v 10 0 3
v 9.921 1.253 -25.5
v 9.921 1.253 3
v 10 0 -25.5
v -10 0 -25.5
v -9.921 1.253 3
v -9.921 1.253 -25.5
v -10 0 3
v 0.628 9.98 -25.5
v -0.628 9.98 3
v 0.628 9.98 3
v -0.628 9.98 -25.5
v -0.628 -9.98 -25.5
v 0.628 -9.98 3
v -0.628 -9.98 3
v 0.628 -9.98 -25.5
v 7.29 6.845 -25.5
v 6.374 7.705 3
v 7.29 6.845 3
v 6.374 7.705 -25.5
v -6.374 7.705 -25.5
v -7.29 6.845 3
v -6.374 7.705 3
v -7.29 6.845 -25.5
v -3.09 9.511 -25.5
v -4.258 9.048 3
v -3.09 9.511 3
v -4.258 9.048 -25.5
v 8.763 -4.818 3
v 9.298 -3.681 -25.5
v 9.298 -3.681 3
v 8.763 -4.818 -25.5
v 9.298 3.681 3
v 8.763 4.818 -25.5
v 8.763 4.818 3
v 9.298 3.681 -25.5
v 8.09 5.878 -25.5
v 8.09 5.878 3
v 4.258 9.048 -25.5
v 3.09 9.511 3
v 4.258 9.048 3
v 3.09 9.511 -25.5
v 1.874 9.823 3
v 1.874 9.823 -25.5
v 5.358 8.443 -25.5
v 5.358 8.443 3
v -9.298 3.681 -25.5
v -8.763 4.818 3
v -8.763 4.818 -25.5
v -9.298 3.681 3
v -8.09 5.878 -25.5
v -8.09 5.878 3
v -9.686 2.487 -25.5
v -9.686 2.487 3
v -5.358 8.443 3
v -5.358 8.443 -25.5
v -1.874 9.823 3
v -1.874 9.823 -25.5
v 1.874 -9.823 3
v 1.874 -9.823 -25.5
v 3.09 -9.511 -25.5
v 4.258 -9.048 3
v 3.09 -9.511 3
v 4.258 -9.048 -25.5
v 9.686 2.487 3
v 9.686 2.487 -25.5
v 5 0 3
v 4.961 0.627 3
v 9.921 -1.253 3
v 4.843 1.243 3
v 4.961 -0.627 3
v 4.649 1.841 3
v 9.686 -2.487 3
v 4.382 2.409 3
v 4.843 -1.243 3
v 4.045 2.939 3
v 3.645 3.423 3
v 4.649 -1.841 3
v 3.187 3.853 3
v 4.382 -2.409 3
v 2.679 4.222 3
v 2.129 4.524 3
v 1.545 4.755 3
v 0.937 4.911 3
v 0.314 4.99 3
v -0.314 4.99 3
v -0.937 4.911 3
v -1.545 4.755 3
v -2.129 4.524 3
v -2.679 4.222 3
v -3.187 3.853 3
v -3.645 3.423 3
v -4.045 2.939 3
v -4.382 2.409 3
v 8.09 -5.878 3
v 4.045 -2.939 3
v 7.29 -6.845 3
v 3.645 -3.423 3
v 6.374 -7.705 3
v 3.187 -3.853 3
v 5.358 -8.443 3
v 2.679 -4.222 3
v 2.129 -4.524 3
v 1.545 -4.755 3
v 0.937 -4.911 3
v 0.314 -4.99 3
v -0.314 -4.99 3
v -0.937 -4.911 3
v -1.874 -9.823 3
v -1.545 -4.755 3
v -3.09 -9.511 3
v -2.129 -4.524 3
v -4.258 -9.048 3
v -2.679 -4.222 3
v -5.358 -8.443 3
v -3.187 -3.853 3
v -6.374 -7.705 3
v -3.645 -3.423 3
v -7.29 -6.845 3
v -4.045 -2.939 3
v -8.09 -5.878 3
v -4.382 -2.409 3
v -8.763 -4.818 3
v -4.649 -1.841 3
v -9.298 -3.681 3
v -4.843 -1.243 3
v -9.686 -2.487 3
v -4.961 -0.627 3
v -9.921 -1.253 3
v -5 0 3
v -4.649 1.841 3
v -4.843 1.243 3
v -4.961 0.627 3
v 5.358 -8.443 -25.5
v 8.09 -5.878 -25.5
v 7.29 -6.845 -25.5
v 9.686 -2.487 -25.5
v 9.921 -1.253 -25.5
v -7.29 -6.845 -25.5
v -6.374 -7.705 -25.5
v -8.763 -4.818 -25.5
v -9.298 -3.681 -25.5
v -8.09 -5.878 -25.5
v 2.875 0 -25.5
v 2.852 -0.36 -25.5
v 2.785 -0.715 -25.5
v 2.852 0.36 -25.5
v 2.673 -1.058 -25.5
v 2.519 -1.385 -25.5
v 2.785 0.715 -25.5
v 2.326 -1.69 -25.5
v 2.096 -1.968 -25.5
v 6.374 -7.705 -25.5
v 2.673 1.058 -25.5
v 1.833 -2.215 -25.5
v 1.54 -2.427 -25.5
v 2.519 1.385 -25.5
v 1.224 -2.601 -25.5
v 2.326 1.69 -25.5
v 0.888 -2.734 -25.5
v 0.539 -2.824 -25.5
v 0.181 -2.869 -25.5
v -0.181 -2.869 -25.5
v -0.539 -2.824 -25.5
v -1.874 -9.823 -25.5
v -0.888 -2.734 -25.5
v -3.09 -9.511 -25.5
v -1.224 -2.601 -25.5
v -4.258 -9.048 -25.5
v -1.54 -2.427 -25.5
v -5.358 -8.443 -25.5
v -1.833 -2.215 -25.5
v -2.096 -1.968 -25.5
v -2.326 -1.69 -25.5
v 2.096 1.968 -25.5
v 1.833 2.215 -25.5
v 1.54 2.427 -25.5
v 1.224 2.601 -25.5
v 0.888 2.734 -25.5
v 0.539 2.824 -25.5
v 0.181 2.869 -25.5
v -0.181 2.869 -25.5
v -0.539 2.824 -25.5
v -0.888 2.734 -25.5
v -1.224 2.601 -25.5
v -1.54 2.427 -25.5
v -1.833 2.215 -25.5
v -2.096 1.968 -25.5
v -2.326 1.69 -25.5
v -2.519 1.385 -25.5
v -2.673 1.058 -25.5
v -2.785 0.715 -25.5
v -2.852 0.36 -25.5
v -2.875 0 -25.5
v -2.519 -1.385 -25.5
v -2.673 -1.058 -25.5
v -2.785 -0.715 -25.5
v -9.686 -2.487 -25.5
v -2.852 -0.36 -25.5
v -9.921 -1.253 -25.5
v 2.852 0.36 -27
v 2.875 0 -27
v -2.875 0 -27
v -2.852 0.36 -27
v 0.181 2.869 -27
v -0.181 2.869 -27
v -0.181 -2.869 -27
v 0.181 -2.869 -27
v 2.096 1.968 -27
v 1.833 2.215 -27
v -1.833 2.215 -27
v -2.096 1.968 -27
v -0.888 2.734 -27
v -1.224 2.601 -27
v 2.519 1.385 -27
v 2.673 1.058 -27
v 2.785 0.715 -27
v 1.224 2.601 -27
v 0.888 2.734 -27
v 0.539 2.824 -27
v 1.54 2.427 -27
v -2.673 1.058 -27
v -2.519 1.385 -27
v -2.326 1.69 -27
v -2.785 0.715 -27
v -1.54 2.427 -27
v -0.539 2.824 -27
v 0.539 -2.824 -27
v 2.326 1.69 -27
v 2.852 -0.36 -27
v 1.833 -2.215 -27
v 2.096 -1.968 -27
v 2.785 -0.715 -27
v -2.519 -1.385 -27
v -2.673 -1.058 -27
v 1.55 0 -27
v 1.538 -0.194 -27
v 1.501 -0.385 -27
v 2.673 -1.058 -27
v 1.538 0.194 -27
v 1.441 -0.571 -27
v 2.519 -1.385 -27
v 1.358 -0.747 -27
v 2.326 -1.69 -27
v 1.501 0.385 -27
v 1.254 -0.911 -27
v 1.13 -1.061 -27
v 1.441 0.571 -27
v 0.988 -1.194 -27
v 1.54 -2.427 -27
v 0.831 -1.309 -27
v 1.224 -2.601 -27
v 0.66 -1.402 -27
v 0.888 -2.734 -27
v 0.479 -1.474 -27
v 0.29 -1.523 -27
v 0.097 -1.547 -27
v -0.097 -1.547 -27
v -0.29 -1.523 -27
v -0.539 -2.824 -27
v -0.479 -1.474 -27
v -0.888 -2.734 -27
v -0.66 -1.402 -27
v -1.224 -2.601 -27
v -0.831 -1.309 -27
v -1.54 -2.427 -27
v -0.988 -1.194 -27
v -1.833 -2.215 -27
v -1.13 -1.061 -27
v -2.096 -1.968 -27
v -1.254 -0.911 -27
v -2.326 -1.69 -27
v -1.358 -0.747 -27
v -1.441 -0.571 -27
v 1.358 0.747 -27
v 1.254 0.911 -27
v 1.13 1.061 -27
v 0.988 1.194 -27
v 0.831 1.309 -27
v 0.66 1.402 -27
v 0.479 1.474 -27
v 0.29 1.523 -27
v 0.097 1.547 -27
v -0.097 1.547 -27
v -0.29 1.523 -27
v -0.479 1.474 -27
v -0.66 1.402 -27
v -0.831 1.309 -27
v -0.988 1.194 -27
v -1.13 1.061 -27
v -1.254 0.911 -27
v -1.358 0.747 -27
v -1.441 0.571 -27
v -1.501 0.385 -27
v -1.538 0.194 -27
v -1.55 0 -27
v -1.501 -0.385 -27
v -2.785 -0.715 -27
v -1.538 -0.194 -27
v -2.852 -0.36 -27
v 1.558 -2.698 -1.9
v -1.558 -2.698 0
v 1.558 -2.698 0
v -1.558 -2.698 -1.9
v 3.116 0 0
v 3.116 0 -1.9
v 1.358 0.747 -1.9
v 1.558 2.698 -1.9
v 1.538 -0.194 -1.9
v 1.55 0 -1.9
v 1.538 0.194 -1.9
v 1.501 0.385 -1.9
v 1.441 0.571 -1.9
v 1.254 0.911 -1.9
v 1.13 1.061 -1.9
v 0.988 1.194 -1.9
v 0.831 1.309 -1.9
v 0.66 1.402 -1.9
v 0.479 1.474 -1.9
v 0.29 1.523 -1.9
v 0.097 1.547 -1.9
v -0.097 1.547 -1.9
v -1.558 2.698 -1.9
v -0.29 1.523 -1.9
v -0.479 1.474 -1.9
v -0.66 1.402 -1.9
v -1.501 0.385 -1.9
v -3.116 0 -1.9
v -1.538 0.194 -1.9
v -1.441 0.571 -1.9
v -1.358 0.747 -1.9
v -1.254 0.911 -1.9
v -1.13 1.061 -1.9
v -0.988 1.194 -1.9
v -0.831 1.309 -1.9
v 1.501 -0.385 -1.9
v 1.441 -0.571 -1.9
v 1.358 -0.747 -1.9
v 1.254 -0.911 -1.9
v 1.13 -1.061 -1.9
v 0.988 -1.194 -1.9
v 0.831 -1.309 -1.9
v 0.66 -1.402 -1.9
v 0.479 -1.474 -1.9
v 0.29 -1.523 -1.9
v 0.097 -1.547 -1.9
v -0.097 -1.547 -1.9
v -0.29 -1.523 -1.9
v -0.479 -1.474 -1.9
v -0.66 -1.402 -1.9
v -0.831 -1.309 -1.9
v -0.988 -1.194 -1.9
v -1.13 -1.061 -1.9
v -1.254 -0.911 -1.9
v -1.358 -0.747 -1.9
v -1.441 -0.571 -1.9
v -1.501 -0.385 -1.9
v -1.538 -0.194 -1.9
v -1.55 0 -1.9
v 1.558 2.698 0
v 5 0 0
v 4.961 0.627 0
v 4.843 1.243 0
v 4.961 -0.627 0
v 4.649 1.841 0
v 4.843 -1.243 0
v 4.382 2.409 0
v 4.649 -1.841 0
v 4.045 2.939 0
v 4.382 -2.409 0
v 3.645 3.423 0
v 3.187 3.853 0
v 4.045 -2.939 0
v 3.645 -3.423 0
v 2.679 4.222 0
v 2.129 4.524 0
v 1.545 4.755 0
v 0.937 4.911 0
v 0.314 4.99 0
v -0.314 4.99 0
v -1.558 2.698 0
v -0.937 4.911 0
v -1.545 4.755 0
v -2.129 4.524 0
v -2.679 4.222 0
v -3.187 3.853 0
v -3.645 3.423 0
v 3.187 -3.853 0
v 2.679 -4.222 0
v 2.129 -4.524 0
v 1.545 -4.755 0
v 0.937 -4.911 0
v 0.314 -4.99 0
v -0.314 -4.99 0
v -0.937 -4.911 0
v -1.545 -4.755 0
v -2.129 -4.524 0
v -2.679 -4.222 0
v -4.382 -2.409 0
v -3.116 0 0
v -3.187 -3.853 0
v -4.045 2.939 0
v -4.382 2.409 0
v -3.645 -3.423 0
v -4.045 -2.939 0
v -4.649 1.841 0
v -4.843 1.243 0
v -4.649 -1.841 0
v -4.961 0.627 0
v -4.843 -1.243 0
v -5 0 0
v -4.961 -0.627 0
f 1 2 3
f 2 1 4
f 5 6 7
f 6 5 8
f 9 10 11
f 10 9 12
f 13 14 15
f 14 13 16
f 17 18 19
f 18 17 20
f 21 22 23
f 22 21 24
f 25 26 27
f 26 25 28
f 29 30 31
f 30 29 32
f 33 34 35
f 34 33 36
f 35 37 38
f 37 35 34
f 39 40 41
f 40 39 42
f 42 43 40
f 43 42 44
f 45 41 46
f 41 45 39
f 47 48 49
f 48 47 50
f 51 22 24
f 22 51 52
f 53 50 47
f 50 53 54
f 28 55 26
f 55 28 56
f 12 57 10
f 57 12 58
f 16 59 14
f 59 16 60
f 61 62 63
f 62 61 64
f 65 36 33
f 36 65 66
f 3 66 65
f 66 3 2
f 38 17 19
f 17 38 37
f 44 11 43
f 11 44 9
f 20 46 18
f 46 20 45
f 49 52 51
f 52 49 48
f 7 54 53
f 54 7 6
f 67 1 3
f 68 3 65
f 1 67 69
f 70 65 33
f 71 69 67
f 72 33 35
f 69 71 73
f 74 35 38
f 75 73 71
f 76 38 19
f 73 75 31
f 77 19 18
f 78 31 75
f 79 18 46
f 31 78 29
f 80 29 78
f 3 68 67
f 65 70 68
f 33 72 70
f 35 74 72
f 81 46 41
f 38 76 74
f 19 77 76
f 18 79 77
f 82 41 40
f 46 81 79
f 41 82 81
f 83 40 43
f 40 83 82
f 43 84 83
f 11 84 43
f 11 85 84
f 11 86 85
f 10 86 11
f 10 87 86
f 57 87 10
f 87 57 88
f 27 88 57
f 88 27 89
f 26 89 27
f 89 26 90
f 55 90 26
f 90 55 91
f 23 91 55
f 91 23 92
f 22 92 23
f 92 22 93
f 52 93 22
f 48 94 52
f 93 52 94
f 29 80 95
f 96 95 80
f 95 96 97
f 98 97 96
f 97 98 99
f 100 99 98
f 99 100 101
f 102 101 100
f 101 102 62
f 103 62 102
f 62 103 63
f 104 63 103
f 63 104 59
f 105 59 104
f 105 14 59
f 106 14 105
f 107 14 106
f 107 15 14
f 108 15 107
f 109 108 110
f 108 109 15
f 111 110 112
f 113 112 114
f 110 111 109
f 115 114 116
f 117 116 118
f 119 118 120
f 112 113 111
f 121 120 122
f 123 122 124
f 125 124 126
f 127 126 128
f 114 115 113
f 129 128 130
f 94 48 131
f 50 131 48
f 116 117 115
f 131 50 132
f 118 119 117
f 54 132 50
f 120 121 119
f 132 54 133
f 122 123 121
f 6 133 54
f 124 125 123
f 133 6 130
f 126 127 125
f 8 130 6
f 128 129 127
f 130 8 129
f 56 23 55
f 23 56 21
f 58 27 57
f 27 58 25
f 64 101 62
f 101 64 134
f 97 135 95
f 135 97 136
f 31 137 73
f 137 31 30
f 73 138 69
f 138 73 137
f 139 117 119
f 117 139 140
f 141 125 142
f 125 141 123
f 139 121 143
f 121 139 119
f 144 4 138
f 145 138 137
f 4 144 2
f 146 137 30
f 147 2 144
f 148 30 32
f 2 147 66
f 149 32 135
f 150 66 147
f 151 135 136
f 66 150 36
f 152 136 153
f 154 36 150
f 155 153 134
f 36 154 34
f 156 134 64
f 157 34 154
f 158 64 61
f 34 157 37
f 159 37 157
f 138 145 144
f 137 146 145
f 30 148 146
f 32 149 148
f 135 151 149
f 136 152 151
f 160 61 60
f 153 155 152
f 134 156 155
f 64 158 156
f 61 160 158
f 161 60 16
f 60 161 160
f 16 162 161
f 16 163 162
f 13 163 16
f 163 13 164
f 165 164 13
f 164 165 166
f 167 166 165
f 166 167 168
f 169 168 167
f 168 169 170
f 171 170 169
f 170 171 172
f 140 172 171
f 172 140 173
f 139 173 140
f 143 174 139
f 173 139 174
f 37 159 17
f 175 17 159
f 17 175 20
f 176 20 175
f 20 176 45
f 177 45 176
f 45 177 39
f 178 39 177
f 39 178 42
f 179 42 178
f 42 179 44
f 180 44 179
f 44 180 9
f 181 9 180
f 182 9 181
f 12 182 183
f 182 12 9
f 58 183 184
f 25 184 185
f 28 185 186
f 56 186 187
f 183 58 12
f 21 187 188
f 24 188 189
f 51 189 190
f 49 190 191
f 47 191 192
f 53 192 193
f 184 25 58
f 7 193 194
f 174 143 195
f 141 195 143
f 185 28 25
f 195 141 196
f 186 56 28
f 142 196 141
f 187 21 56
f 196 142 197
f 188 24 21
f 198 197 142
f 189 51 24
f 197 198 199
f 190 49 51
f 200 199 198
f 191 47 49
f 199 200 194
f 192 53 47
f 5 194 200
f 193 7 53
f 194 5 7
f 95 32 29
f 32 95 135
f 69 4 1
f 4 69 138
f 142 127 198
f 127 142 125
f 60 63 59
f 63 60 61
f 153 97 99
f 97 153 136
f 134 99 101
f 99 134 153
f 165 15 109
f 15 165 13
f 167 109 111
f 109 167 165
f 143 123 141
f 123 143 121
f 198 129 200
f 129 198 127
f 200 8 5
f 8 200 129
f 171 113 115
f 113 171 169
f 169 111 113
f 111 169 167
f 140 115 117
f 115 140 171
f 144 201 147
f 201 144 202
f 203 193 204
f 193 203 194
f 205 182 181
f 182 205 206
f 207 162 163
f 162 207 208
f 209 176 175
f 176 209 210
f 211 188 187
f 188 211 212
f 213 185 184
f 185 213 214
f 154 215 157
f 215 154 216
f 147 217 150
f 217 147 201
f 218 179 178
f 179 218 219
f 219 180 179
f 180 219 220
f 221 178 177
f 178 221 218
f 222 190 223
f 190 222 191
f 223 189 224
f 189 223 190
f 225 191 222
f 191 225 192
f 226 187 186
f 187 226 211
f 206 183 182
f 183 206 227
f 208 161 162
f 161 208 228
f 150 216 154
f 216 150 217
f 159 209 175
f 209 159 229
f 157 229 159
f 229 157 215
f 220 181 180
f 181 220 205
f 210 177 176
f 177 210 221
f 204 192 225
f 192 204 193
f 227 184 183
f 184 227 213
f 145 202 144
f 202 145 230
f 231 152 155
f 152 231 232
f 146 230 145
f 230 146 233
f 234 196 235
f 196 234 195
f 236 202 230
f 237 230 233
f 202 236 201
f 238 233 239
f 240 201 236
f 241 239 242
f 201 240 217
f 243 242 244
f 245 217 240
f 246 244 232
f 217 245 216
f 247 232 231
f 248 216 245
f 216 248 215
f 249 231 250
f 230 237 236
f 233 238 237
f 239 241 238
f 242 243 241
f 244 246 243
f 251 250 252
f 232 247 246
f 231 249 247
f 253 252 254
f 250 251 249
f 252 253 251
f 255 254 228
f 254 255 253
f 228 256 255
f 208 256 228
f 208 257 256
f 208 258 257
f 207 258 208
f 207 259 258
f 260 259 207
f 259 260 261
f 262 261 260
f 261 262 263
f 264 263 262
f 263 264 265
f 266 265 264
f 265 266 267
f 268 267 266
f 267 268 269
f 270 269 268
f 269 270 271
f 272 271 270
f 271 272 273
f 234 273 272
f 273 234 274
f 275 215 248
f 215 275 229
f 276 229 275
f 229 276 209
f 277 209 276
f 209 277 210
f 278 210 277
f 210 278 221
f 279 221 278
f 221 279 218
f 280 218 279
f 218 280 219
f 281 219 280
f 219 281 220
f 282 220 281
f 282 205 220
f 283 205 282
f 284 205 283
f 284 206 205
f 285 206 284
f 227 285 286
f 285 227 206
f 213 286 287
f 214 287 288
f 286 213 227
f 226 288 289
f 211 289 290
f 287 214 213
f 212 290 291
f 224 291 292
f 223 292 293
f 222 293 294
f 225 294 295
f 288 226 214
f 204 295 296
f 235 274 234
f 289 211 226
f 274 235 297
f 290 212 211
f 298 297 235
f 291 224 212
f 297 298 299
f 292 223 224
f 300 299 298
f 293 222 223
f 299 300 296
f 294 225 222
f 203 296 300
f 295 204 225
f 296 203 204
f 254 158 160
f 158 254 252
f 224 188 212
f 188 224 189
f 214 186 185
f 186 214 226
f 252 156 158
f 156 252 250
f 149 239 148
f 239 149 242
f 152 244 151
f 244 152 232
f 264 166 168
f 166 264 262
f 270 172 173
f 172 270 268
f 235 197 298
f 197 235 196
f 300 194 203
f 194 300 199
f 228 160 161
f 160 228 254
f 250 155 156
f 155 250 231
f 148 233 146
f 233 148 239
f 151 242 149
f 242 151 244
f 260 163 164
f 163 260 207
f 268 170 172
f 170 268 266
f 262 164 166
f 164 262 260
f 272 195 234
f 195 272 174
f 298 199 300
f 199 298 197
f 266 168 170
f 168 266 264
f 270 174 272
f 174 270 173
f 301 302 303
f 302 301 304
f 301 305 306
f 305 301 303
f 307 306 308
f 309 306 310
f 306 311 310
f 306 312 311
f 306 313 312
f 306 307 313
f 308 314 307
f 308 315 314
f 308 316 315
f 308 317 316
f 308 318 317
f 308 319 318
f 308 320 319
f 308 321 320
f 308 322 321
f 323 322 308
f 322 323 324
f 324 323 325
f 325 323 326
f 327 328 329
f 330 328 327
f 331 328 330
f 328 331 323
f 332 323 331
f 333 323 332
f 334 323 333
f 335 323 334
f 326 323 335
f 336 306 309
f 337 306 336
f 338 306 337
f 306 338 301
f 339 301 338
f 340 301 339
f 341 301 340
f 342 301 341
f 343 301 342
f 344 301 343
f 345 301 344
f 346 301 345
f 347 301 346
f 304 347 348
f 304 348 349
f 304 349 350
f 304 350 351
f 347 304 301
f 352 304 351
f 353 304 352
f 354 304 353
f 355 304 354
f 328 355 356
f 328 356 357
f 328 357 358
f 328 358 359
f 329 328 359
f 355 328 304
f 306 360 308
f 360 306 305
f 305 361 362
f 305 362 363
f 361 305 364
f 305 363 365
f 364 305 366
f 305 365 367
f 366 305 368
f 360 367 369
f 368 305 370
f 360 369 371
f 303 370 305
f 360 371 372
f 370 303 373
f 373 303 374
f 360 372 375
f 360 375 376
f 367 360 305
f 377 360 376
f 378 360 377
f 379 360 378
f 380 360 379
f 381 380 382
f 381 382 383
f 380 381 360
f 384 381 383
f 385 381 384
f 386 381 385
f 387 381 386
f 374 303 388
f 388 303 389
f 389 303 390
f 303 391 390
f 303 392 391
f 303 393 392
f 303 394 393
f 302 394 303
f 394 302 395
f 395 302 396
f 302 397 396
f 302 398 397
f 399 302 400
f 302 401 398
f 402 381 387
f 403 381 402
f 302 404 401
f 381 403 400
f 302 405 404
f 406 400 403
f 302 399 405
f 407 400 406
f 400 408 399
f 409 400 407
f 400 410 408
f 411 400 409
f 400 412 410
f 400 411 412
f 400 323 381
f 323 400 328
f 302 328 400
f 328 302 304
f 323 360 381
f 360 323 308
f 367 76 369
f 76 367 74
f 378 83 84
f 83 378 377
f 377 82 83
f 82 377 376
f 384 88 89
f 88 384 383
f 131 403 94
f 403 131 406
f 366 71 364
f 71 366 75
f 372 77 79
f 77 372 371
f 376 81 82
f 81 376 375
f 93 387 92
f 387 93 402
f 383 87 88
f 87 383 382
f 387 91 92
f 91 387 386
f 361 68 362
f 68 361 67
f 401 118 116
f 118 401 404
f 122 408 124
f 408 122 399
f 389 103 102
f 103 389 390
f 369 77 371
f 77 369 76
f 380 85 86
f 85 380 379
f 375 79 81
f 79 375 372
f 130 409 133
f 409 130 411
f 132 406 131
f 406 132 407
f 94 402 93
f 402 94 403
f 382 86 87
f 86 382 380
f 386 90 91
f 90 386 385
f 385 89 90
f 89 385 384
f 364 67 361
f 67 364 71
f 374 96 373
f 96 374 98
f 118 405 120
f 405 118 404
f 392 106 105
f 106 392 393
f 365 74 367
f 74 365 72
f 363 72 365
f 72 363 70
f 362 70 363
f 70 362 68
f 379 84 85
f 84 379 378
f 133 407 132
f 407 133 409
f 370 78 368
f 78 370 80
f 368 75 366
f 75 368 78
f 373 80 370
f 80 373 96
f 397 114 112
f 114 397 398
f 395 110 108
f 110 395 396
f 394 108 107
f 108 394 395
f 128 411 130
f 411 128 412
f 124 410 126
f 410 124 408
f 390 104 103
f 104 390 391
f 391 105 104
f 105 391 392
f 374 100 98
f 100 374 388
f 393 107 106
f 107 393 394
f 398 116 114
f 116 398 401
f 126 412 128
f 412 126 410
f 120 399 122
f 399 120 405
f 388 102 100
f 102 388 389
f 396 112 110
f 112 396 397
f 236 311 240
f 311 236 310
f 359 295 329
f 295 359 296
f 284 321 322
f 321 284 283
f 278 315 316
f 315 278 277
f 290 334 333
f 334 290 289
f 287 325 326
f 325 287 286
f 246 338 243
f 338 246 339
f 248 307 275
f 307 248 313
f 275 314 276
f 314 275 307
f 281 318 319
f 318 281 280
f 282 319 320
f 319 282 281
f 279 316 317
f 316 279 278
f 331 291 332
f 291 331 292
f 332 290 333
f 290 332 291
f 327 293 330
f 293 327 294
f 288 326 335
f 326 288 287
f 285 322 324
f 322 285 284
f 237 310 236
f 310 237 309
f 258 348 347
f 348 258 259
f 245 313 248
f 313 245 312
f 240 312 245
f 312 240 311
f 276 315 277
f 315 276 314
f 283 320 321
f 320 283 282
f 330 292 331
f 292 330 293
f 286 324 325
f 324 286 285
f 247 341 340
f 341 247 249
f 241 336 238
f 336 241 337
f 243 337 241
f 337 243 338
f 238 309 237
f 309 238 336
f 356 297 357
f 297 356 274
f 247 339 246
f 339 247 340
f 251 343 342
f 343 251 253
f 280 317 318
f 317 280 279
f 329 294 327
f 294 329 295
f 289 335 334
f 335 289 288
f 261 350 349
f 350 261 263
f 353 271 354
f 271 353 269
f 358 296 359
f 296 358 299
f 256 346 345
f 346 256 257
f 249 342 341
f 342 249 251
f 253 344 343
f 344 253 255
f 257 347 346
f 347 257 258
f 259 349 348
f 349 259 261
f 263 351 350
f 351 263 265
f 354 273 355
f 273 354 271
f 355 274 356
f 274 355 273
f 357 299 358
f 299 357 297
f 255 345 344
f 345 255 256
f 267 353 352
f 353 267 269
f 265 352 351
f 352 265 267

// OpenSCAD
$fn = 50;

difference() {
	union() {
		translate(v = [0, 0, -25.5]) {
			cylinder(h = 28.5, r = 10.0);
		}
		#translate(v = [0, 0, -27.0]) {
			cylinder(h = 27, r = 2.875);
		}
	}
	union() {
		translate(v = [0, 0, 0]) {
			rotate(a = [0, 0, 0]) {
				difference() {
					union() {
						translate(v = [0, 0, -1.9]) {
							linear_extrude(height = 1.9) {
								polygon(points = [[3.1158, 0.0], [1.5579000000000005, 2.698361953111554], [-1.5578999999999994, 2.6983619531115544], [-3.1158, 3.815754496783323e-16], [-1.5579000000000014, -2.6983619531115535], [1.557899999999998, -2.6983619531115552]]);
							}
						}
					}
					union();
				}
			}
		}
		#cylinder(h = 3, r = 5.0);
		#translate(v = [0, 0, -100.0]) {
			cylinder(h = 200, r = 1.55);
		}
	}
}
